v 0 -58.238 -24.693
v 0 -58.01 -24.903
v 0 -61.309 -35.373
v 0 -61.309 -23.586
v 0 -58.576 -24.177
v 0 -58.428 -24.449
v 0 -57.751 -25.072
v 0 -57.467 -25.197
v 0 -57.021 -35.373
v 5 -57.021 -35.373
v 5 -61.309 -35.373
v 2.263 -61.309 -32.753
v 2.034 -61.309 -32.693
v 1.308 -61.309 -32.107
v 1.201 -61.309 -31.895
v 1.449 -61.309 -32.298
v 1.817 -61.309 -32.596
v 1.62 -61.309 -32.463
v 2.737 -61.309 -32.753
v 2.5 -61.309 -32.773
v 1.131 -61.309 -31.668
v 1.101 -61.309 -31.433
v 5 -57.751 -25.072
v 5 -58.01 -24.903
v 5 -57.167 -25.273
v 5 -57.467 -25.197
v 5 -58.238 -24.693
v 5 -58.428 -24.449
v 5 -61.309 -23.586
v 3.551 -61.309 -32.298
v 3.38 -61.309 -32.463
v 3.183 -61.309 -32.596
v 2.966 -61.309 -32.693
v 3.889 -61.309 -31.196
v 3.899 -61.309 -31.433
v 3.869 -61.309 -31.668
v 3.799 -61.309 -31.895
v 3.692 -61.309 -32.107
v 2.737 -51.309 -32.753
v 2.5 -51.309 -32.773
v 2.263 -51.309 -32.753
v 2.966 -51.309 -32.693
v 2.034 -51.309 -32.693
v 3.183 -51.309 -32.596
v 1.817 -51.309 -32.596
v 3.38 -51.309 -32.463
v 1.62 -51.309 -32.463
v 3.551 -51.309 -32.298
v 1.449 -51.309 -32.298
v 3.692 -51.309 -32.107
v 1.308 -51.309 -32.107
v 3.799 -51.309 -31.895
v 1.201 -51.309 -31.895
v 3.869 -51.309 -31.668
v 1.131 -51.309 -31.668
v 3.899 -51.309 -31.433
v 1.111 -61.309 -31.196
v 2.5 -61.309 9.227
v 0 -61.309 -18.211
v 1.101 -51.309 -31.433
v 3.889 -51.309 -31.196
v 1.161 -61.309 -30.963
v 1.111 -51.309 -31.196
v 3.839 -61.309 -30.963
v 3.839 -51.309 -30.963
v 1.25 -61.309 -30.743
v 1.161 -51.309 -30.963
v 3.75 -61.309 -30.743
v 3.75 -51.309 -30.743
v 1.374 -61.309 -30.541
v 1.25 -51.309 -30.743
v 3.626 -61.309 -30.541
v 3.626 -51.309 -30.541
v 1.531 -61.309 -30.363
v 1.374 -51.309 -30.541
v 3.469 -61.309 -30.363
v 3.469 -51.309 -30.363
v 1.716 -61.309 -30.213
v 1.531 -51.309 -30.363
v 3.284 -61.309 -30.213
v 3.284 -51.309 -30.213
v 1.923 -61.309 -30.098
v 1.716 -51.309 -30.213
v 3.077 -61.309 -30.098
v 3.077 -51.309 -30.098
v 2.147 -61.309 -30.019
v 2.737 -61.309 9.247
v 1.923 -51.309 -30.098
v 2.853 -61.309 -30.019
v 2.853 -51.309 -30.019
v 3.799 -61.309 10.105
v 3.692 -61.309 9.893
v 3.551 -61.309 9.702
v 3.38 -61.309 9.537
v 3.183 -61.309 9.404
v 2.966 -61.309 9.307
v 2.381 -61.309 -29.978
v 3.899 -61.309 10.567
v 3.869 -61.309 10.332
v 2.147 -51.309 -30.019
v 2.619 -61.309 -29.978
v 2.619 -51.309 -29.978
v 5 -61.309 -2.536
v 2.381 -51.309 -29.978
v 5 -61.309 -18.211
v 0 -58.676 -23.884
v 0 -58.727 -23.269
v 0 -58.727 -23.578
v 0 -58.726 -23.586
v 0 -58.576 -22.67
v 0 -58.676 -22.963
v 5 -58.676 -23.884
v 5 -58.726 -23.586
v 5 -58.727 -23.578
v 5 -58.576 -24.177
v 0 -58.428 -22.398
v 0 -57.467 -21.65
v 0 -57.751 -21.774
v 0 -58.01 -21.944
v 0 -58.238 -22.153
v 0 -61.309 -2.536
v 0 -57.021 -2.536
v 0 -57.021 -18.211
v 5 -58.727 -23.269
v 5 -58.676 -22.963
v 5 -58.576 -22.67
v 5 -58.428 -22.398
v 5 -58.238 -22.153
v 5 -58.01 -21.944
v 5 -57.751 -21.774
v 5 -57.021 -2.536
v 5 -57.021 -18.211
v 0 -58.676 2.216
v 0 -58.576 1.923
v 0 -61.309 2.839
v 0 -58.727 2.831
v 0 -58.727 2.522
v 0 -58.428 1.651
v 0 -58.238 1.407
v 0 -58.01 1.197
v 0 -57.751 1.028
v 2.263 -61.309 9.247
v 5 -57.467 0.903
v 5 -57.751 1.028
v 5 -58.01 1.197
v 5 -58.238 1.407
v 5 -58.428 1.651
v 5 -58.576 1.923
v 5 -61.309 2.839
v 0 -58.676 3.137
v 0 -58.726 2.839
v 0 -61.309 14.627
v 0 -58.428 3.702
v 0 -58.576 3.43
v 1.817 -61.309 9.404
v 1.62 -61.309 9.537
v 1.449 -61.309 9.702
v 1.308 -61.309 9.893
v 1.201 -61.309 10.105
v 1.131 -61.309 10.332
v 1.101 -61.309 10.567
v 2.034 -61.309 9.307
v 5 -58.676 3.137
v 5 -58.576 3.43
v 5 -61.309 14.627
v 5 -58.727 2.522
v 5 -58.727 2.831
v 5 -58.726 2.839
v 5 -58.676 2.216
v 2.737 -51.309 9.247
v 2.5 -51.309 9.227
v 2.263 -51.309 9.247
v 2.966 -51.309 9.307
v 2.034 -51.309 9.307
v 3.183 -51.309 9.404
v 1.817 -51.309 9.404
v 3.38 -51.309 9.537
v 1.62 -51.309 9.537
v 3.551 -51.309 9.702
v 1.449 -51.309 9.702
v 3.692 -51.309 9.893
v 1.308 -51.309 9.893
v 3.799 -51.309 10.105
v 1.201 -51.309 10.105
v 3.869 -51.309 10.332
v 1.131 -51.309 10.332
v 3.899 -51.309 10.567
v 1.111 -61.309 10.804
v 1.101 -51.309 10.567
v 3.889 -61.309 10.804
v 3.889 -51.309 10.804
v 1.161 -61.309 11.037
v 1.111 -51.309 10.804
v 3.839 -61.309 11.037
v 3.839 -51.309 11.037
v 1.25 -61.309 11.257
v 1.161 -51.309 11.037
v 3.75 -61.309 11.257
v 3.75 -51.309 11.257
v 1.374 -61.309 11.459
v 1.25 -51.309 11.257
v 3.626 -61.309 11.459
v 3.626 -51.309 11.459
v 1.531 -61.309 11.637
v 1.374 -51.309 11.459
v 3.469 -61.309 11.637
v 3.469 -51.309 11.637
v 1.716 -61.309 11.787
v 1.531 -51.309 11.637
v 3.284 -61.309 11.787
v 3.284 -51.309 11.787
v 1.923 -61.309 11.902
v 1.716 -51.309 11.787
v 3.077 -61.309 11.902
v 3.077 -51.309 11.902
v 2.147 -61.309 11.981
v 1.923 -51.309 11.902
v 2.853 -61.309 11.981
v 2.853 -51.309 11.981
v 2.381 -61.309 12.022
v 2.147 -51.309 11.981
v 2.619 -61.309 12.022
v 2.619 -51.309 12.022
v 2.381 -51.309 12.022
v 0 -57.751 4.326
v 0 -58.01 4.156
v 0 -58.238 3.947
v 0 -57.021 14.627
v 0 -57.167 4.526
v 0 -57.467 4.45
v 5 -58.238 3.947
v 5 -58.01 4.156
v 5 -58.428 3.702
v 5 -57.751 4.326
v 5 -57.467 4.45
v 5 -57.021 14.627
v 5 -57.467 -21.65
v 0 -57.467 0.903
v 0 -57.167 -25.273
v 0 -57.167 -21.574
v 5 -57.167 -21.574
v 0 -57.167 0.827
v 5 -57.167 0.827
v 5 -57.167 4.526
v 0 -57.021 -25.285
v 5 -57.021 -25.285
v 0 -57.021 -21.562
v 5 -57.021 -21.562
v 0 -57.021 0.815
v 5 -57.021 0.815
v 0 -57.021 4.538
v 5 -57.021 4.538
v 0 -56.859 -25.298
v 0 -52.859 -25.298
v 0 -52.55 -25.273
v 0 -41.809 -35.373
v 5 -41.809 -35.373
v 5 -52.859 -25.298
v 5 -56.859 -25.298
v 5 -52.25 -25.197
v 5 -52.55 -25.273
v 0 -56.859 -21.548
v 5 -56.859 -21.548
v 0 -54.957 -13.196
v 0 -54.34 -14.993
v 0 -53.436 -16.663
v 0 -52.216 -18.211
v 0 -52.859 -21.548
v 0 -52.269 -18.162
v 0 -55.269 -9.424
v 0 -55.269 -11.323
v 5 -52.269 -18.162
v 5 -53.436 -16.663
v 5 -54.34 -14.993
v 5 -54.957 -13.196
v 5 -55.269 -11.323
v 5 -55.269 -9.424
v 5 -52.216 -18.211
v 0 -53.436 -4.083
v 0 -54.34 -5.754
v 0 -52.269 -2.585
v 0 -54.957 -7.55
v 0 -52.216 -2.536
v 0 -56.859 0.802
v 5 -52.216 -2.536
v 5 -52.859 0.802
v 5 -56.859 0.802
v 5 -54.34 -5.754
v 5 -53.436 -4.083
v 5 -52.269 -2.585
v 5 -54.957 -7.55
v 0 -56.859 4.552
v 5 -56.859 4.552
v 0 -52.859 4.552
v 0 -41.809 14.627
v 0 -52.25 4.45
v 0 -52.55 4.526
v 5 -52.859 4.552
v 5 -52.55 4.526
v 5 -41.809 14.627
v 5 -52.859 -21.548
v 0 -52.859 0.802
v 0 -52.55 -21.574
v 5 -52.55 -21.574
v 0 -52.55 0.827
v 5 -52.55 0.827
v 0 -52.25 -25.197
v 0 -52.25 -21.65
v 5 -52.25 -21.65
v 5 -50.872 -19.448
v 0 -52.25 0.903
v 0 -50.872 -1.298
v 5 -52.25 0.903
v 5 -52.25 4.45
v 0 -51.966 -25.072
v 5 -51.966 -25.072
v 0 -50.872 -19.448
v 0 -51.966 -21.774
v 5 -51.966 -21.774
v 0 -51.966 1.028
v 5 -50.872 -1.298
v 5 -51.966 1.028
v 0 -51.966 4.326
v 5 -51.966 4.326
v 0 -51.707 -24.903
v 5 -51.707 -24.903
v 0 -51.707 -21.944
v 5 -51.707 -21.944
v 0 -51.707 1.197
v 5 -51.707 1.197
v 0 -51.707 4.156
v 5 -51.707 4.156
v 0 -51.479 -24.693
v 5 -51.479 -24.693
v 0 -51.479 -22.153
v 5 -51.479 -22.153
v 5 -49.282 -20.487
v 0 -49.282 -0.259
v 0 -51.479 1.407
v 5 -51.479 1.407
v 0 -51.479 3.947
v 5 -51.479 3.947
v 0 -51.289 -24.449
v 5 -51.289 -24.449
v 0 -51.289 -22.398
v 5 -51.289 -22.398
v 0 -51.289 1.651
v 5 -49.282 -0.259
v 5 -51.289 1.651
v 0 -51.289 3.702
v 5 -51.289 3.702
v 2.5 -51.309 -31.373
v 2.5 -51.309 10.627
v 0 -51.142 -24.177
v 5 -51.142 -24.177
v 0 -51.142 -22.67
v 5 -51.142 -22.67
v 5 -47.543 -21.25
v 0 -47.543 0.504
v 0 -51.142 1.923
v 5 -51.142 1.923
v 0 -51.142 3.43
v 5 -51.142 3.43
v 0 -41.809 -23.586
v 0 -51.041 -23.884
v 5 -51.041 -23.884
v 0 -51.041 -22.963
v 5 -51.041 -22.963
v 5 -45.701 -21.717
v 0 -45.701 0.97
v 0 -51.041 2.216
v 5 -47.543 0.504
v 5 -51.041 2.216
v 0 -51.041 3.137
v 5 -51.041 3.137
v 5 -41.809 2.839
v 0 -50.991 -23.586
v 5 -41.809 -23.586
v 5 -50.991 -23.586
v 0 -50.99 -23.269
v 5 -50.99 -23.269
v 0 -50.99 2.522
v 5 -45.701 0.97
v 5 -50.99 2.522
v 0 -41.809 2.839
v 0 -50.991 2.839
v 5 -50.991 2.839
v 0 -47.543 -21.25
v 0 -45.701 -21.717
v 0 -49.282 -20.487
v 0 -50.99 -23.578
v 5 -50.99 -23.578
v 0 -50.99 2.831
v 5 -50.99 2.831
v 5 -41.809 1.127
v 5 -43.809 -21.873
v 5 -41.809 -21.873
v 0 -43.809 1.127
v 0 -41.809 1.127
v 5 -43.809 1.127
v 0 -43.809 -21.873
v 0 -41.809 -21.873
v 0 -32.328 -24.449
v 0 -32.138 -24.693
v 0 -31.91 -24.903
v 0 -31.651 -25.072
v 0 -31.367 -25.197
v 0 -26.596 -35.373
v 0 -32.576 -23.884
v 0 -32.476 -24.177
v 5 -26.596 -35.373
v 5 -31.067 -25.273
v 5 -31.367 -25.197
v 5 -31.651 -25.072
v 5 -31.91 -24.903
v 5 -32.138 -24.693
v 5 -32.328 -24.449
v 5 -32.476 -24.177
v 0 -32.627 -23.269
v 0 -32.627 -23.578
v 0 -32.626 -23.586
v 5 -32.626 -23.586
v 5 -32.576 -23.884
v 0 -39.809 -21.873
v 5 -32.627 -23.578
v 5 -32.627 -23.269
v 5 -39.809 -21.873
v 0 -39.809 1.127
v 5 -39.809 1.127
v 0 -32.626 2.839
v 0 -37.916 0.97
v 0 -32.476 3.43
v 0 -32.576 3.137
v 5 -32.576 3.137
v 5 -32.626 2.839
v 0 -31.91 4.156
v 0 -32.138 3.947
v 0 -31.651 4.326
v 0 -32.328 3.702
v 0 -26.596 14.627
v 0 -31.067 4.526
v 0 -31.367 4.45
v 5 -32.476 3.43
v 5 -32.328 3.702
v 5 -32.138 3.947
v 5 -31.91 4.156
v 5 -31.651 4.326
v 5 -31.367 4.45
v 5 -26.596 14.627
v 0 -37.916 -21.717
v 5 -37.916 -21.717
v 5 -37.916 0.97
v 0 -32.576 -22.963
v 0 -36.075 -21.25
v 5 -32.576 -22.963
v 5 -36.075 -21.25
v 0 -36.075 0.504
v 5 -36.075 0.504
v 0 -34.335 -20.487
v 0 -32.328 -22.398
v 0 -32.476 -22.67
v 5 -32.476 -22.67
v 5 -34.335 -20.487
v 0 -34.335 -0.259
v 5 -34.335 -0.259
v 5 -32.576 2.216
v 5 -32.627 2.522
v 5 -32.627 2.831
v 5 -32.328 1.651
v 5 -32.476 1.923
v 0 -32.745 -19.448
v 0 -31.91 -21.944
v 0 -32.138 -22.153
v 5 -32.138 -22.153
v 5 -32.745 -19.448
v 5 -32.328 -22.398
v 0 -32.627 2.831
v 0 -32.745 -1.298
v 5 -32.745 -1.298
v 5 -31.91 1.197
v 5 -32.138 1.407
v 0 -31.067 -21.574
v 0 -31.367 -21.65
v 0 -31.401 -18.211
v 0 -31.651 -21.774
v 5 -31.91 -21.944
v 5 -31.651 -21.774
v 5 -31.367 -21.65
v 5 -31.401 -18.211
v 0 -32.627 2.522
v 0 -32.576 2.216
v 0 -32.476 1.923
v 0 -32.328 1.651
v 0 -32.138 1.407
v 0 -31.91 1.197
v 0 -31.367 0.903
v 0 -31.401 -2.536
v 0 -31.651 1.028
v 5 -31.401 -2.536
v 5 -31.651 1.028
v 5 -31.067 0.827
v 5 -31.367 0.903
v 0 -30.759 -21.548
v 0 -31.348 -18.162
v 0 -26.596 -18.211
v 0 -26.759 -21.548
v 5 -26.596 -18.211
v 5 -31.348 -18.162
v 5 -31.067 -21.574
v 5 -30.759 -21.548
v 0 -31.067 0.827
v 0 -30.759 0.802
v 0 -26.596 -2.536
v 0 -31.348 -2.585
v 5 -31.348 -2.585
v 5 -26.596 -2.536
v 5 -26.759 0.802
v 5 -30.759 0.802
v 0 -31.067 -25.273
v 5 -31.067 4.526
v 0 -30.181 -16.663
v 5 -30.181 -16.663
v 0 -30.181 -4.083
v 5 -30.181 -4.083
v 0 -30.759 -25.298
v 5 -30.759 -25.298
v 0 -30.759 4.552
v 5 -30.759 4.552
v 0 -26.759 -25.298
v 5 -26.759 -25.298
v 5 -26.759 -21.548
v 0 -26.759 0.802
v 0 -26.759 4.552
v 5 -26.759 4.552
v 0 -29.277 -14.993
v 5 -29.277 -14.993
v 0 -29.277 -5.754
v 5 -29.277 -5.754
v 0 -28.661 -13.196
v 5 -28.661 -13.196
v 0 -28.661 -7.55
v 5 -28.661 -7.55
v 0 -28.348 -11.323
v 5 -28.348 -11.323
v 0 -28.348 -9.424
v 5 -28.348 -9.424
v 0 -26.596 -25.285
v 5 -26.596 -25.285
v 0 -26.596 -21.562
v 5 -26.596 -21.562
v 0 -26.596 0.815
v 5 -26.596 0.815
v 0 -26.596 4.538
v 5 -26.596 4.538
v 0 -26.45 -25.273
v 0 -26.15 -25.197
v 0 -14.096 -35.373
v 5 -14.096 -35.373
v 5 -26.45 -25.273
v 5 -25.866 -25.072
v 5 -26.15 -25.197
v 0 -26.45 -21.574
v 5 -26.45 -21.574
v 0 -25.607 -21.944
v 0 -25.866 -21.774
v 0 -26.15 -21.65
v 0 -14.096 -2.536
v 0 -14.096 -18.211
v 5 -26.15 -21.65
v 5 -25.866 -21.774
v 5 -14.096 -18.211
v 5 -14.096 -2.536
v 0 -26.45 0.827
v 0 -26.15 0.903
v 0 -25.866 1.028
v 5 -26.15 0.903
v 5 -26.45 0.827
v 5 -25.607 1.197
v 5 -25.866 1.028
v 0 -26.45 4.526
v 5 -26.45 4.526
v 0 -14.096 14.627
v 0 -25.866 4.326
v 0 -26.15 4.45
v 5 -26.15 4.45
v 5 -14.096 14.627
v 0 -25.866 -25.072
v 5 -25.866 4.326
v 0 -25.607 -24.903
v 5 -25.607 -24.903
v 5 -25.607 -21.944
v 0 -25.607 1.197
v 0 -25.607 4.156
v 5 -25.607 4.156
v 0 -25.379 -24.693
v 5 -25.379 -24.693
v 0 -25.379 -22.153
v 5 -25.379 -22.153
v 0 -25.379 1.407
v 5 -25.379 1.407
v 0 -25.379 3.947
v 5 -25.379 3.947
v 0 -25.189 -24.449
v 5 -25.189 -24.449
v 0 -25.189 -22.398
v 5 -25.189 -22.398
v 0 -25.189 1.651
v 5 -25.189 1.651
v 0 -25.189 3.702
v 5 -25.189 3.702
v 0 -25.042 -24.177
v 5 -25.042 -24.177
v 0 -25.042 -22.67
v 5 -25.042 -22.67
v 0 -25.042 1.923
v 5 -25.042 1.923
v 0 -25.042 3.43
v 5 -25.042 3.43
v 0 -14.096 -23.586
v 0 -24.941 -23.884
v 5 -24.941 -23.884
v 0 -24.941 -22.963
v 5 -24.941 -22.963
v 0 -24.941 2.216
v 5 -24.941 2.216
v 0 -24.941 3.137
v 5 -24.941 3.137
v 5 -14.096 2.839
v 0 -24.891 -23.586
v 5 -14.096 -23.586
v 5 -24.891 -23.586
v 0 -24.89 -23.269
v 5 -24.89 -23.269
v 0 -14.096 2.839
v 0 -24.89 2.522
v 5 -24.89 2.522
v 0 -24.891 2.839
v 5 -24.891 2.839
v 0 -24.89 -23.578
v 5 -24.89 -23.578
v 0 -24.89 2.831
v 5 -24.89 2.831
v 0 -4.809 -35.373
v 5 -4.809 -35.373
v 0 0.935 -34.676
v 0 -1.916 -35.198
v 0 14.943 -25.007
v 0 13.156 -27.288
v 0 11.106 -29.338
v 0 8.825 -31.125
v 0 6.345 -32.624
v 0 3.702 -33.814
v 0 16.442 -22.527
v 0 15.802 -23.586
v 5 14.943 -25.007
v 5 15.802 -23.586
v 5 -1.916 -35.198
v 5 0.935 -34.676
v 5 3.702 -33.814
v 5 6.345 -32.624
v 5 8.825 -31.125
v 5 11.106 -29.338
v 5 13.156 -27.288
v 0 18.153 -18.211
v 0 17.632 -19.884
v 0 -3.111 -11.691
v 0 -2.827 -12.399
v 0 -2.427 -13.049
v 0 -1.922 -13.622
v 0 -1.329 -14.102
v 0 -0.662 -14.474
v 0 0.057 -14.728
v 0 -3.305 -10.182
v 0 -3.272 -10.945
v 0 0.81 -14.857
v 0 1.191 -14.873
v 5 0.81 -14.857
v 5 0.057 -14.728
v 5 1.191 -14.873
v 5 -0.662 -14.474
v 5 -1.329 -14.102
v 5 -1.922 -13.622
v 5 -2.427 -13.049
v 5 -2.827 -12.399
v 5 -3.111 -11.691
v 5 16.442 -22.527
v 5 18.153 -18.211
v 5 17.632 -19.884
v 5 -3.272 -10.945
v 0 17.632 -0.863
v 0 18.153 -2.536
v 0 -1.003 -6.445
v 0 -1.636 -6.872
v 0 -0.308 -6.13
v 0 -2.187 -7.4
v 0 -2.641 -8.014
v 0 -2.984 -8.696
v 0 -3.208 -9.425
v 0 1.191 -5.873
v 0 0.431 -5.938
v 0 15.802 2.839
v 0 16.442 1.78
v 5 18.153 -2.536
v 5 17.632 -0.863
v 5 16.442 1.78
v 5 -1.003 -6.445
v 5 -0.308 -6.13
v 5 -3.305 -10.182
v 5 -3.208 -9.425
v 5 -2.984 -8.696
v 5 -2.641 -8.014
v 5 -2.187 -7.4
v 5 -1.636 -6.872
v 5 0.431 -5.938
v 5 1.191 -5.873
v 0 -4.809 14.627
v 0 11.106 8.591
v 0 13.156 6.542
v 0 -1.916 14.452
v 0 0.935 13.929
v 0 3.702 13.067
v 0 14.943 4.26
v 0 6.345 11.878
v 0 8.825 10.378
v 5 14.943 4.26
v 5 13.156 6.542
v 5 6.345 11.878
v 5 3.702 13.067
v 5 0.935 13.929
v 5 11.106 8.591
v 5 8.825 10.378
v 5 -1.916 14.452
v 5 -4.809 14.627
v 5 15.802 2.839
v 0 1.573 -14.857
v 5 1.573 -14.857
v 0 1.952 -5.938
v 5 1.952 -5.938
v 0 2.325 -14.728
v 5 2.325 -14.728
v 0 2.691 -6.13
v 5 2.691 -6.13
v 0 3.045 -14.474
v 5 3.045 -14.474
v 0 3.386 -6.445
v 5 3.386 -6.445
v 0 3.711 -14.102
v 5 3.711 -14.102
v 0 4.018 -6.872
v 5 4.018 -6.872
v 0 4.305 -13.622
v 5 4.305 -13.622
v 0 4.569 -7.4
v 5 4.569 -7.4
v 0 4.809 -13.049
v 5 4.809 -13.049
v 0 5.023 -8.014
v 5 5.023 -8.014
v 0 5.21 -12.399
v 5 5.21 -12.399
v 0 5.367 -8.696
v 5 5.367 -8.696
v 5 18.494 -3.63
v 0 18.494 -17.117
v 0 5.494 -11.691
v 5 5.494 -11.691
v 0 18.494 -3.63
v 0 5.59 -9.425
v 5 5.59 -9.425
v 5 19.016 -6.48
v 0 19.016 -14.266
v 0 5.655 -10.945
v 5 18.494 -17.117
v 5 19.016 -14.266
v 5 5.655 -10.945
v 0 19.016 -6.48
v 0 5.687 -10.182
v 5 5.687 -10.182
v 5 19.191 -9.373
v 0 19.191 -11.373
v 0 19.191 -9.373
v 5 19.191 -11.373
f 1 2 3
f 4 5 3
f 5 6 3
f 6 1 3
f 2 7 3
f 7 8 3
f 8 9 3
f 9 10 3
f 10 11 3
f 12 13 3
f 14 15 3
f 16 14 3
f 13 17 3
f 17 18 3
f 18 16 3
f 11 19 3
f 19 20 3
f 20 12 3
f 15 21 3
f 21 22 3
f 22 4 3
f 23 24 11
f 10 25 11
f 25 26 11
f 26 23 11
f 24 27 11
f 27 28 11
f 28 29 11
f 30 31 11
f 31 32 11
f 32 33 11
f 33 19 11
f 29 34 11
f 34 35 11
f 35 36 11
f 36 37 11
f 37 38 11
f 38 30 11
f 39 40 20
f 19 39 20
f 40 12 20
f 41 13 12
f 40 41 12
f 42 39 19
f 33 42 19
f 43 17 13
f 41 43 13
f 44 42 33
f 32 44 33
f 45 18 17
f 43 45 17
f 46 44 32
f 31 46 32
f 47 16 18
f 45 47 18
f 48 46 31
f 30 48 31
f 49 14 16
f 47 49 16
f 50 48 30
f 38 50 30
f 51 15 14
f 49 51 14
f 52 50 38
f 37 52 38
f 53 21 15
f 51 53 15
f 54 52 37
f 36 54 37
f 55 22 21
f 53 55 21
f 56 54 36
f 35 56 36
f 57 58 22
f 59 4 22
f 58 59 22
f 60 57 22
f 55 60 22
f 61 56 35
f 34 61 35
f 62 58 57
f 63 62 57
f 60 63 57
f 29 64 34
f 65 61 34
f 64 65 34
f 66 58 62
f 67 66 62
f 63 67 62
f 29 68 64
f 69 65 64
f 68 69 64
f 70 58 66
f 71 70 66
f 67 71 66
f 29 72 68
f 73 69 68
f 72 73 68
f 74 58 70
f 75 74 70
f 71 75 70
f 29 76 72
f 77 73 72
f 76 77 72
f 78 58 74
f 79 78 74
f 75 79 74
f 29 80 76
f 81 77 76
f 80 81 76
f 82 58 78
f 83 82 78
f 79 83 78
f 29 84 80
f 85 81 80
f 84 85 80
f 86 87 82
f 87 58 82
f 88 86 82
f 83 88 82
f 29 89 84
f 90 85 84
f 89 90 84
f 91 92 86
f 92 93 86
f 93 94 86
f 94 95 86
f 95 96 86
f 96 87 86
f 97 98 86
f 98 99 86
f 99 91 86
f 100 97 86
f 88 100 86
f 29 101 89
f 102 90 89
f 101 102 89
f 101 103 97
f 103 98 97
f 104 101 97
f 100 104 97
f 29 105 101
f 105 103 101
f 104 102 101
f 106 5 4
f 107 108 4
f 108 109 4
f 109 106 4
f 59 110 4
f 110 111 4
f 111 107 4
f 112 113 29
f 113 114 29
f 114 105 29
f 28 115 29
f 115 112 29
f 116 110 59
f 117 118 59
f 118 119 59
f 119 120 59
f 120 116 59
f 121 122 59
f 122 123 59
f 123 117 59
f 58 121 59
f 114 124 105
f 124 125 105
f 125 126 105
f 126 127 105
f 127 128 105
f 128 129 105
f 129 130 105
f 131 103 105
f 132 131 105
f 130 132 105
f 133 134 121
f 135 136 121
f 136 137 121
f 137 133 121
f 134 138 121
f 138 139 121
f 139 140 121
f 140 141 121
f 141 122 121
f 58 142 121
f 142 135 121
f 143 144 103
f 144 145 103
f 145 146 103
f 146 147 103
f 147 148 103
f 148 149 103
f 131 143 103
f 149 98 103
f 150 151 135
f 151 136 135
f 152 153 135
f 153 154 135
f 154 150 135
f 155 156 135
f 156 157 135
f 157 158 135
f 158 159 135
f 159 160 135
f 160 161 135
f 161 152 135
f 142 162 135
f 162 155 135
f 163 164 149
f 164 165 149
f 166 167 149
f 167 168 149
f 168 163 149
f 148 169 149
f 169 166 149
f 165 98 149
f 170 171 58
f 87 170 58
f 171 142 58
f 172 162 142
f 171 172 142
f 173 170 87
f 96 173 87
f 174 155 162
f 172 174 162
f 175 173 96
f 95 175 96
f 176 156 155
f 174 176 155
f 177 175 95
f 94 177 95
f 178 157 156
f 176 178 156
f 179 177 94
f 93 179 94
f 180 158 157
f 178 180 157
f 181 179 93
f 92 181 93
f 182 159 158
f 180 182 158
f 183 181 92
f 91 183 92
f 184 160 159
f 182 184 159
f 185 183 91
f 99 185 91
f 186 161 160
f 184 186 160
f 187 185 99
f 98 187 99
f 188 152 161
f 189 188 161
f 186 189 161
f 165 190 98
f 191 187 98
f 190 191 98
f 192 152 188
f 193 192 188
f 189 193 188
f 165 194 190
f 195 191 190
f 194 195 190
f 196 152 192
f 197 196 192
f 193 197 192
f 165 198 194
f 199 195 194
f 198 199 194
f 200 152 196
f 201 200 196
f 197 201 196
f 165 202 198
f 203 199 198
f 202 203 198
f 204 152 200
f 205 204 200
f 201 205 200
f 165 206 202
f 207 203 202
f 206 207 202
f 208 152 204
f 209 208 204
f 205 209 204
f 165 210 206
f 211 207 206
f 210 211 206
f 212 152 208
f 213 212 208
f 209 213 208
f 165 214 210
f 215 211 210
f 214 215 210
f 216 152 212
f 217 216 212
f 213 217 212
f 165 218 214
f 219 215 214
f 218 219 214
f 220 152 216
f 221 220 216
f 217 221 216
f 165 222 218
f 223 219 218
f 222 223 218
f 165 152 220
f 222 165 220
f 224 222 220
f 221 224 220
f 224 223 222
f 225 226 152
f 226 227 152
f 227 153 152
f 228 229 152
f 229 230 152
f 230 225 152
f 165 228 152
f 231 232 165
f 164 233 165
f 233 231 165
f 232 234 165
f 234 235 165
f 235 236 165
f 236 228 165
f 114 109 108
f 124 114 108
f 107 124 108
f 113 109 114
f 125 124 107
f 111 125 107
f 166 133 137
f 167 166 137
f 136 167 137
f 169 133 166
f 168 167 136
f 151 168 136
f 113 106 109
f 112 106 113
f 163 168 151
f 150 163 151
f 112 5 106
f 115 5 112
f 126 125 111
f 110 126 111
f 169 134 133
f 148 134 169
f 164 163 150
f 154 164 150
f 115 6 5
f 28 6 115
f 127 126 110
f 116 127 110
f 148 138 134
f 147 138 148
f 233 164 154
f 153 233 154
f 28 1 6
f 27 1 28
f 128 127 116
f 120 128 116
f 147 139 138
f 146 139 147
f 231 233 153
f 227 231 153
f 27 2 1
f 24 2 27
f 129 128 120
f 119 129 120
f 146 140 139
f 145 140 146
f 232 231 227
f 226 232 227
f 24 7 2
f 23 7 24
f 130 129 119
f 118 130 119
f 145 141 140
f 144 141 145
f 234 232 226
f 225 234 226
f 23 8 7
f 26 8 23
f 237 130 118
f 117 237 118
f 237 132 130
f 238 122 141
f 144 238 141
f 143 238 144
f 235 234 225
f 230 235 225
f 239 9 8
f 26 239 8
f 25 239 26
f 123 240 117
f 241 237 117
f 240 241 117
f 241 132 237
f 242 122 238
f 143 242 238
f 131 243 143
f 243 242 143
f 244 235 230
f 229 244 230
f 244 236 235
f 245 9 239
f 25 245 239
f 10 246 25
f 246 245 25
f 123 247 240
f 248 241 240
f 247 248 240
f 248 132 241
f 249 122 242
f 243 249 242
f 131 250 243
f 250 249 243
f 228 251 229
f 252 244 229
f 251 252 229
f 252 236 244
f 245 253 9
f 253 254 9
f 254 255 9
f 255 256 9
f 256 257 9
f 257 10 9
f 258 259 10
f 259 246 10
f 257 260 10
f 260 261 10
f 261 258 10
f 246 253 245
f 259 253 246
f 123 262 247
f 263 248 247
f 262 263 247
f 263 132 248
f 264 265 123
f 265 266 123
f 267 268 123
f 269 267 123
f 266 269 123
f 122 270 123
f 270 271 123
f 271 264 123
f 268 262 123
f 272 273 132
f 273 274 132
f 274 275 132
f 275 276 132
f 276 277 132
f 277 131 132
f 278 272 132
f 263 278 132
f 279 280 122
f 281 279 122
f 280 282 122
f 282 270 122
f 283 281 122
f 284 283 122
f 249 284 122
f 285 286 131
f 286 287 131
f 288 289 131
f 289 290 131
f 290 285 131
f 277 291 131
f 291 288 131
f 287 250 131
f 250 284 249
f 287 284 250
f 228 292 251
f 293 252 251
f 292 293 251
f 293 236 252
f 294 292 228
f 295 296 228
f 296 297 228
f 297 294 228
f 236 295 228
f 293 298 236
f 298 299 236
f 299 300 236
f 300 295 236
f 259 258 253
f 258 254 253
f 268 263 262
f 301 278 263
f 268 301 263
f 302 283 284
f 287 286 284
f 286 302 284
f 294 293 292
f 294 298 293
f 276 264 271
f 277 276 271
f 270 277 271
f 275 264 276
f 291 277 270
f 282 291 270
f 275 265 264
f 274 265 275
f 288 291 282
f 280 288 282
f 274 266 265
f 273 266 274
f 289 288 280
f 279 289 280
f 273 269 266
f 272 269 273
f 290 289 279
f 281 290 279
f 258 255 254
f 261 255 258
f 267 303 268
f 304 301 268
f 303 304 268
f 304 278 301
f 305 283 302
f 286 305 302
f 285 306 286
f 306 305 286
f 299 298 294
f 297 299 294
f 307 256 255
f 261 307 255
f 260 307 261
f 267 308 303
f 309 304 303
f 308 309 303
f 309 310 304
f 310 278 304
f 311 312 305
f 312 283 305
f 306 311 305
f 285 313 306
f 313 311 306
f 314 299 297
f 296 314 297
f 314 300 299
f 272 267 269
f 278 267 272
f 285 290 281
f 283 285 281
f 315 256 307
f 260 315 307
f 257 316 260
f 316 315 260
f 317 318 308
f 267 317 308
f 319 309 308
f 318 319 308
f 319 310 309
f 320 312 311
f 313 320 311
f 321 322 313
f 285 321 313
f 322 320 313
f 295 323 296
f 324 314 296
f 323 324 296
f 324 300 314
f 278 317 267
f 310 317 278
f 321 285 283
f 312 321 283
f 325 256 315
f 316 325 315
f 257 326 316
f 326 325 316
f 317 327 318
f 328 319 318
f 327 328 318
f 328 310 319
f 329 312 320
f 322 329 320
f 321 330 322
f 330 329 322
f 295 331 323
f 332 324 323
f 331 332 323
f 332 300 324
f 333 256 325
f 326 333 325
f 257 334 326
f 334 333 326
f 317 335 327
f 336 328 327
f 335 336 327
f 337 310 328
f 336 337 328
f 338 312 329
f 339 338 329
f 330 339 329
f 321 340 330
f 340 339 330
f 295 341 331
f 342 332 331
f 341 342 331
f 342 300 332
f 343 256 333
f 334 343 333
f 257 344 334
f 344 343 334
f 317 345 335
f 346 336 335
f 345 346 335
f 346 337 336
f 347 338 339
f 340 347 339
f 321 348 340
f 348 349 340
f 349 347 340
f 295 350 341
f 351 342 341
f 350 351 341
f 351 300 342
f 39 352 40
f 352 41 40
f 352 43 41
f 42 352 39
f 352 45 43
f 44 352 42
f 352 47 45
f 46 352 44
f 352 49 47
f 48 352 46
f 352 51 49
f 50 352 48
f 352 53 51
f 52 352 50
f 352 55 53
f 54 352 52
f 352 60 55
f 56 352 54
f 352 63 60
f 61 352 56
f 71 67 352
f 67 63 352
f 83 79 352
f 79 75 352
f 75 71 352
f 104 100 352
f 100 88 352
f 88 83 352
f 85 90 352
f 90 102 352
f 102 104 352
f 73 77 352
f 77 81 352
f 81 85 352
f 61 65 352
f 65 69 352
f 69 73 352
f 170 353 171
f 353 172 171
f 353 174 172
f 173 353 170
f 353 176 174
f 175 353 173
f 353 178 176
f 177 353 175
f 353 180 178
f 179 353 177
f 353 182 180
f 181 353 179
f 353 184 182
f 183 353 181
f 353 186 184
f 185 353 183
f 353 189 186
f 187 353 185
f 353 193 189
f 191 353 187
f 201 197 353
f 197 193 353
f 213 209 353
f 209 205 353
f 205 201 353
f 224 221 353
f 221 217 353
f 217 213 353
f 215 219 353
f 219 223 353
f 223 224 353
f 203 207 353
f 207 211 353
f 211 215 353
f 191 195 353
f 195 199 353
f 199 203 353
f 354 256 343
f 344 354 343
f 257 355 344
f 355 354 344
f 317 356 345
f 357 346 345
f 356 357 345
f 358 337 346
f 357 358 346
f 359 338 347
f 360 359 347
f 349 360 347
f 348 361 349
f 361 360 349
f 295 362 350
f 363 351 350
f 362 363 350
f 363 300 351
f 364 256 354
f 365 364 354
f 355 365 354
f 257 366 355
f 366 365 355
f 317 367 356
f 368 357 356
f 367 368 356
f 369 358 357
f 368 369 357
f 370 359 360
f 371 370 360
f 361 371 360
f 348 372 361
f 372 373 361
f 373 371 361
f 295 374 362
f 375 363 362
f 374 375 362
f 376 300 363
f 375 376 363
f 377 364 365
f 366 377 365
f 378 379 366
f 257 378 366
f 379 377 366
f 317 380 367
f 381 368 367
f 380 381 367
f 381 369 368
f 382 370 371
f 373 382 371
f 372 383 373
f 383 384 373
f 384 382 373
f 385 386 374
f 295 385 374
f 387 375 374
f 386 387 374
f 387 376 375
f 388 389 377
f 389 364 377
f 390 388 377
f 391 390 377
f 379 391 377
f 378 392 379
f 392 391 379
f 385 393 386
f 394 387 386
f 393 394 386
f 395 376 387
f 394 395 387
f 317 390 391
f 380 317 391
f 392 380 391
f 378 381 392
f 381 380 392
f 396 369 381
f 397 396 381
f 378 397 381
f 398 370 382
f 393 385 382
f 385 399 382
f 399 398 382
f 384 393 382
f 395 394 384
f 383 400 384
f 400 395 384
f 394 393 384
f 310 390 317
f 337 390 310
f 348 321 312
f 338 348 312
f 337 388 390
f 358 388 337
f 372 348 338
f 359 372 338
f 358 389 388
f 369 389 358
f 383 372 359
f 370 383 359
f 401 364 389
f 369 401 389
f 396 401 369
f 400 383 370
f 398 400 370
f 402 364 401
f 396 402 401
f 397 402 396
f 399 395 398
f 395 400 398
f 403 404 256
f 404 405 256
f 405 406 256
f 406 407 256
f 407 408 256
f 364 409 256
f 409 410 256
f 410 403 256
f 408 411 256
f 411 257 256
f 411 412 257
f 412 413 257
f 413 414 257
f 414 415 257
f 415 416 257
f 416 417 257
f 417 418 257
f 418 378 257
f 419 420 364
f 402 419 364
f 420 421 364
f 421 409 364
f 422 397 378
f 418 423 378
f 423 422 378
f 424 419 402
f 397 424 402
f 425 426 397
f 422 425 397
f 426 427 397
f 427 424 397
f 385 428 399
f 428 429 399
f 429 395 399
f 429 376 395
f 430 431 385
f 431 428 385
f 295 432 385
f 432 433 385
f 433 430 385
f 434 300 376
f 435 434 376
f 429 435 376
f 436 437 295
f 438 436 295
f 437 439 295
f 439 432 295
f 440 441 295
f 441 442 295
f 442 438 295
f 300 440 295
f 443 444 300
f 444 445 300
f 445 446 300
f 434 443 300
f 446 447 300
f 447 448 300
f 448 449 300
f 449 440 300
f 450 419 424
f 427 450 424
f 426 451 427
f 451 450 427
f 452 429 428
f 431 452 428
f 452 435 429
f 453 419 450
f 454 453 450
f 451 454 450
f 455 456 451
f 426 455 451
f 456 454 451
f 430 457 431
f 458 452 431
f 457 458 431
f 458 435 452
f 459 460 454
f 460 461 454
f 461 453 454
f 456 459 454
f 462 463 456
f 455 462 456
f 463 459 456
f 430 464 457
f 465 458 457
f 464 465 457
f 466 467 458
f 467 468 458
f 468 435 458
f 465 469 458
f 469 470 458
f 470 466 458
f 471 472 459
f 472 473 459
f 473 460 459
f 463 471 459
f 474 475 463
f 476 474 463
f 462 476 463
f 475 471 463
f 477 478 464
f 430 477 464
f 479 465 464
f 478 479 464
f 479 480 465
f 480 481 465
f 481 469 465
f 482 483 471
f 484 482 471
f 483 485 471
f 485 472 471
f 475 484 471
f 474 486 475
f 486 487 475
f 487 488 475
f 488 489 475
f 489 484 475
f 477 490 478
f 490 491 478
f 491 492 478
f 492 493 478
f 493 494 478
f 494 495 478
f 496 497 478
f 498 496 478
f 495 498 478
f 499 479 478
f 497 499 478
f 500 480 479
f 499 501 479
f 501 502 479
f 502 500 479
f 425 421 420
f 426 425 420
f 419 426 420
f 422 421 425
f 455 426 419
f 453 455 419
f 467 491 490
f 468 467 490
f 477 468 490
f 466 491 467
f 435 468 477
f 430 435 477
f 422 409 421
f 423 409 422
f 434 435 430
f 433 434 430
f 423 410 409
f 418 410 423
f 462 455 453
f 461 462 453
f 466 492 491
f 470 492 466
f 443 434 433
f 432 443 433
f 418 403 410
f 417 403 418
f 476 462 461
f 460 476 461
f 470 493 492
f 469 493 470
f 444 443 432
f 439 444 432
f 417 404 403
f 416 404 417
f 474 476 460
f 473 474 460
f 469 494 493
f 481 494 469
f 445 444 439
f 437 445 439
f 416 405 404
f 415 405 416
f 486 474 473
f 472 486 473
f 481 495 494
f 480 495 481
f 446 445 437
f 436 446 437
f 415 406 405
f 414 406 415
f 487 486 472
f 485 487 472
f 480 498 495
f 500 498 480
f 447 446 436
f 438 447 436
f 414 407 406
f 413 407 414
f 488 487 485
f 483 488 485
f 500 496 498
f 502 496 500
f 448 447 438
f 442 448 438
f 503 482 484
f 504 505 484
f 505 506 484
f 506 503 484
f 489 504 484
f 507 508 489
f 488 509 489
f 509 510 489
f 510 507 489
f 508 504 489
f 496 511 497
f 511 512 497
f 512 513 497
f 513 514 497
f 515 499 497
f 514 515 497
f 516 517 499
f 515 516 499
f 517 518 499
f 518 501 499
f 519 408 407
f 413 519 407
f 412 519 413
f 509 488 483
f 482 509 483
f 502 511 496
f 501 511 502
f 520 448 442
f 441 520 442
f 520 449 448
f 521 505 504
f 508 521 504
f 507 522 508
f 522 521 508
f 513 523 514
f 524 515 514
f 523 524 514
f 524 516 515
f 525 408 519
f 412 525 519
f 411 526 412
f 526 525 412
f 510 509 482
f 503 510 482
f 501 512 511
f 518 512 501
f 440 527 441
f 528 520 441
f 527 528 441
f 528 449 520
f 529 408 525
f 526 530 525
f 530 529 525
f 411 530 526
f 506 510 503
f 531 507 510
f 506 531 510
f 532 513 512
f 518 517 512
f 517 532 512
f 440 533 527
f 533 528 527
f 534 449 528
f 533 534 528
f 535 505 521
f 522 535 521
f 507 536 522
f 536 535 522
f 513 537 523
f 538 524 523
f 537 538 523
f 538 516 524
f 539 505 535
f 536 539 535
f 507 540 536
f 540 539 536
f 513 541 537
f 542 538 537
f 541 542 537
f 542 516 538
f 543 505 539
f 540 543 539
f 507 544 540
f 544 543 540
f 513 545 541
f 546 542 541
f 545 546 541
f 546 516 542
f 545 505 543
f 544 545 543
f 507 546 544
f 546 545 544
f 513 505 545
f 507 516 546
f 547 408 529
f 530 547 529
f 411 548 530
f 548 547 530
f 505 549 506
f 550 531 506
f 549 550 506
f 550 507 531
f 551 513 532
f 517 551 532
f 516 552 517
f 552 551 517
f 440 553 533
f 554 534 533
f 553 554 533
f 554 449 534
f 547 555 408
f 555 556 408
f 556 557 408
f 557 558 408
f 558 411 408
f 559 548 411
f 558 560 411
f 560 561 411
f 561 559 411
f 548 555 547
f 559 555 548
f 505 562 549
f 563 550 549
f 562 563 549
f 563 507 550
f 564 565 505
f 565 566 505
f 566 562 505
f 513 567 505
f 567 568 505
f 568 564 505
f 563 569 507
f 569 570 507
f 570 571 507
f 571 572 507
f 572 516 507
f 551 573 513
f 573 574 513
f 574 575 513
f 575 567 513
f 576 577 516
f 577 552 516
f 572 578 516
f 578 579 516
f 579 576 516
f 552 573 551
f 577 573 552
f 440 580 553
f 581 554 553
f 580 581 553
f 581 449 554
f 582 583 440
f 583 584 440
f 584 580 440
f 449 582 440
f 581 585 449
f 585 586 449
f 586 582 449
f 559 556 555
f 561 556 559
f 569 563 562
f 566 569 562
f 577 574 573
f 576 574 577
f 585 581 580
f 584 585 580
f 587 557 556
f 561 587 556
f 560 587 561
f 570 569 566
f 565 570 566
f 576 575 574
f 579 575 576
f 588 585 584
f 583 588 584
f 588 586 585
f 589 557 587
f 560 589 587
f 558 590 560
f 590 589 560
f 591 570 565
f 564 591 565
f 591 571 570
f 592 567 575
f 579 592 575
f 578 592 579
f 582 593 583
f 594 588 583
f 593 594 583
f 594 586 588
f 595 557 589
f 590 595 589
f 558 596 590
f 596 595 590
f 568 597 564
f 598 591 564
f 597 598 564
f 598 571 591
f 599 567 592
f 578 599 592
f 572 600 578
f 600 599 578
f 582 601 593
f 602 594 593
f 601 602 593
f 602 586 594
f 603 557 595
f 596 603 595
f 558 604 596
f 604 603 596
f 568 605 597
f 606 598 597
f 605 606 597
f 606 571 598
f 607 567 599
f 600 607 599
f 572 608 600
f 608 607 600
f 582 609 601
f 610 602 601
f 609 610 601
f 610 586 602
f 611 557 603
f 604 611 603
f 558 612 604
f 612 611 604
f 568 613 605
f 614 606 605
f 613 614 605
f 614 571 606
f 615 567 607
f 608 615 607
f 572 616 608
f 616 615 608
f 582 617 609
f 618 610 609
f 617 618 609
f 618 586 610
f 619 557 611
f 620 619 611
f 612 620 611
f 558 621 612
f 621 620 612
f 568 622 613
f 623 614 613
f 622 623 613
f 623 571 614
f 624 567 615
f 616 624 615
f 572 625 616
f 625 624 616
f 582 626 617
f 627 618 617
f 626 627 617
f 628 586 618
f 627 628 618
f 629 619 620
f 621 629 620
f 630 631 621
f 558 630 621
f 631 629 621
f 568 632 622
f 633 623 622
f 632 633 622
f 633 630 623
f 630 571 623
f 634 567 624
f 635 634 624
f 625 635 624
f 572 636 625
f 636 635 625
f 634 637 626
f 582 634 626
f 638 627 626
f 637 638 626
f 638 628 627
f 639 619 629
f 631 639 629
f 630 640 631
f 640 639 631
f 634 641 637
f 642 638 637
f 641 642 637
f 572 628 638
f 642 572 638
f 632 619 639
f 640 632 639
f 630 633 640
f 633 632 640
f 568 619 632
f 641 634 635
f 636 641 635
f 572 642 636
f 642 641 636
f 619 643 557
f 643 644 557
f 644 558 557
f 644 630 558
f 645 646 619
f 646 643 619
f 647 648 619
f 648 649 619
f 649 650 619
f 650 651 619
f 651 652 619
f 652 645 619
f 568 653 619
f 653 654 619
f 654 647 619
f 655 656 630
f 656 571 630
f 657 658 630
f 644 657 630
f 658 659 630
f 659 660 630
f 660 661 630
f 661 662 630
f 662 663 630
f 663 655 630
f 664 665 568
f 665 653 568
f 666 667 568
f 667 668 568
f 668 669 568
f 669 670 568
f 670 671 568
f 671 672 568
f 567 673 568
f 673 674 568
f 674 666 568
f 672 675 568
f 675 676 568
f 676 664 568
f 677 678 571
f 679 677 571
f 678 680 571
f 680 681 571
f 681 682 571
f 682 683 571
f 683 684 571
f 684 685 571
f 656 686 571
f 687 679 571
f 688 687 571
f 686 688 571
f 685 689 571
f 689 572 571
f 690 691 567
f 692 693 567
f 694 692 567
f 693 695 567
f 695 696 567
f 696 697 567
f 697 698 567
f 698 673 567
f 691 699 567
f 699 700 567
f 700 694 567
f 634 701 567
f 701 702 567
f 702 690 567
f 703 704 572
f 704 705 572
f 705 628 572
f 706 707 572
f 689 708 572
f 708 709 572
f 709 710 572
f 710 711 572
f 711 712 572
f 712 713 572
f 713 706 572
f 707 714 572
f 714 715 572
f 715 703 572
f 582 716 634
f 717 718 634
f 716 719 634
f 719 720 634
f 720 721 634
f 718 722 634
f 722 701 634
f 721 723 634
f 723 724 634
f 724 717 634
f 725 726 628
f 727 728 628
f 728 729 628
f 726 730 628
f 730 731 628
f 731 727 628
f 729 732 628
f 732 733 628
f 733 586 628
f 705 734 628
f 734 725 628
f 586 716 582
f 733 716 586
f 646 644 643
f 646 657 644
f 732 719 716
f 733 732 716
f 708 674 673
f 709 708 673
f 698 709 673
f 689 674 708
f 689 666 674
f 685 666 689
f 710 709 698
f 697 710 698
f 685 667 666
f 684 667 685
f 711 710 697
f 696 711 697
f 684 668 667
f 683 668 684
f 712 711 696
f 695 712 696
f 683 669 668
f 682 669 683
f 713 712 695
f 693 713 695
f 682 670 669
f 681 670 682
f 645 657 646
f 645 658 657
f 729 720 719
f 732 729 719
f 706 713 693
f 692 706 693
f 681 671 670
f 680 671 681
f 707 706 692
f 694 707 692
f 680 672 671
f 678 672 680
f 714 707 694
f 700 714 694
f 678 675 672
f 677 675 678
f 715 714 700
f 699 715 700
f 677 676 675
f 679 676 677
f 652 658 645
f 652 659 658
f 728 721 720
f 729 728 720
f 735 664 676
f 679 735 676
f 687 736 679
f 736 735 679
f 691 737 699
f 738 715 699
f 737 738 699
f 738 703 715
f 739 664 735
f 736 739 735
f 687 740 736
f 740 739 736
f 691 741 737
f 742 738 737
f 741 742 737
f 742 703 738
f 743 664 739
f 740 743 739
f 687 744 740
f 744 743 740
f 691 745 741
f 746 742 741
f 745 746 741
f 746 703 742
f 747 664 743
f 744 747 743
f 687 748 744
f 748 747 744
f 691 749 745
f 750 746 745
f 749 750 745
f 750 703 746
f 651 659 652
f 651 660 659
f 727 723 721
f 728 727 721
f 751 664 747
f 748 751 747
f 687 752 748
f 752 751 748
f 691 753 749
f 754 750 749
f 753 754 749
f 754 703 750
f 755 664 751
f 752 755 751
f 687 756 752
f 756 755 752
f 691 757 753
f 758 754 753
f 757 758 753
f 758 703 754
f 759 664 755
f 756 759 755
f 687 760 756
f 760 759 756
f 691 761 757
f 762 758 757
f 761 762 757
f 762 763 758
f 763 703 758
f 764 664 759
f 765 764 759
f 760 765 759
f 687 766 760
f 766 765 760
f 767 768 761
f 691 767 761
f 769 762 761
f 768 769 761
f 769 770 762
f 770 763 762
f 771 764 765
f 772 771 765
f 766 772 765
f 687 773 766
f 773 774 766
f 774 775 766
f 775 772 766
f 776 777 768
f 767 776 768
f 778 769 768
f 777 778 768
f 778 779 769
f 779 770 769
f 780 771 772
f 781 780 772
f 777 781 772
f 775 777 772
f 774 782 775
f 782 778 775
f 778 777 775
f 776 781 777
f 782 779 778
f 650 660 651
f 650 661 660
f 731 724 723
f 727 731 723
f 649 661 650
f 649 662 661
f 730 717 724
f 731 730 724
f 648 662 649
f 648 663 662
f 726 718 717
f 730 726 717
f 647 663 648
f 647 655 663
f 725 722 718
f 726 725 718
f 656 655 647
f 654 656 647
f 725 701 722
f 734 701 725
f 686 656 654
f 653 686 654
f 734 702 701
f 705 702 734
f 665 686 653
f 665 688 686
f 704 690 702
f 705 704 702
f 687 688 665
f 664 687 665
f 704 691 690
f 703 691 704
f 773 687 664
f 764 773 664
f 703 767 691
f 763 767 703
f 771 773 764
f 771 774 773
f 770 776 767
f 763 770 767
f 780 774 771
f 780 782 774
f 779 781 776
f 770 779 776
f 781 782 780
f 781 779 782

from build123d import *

# Parameters (mm, degrees)
SKETCH1_R           = 4.5
BOSS_EXTRUDE1_DEPTH = 5
SKETCH2_R           = 1.4
CUT_EXTRUDE1_DEPTH  = 10


with BuildPart() as part:
    # Sketch1 → Boss-Extrude1 (new body)
    with BuildSketch(Plane(origin=(0, 0, 0), x_dir=(0, 0, -1), z_dir=(1, 0, 0))):
        with BuildLine():
            Line((9.37337158, 19.191374663), (11.37337158, 19.191374663))
            ThreePointArc((11.37337158, 19.191374663), (28.343934329, 12.161937412), (35.37337158, -4.808625337))
            Line((35.37337158, -4.808625337), (35.37337158, -61.308625337))
            Line((35.37337158, -61.308625337), (-14.62662842, -61.308625337))
            Line((-14.62662842, -61.308625337), (-14.62662842, -4.808625337))
            ThreePointArc((-14.62662842, -4.808625337), (-7.597191168, 12.161937412), (9.37337158, 19.191374663))
        make_face()
        with Locations((10.37337158, 1.191374663)):
            Circle(SKETCH1_R, mode=Mode.SUBTRACT)
        with BuildLine():
            Line((-4.55162842, -26.758625337), (-4.55162842, -30.758625337))
            ThreePointArc((-4.55162842, -30.758625337), (-2.67662842, -32.633625337), (-0.80162842, -30.758625337))
            Line((-0.80162842, -30.758625337), (-0.80162842, -26.758625337))
            ThreePointArc((-0.80162842, -26.758625337), (-2.67662842, -24.883625337), (-4.55162842, -26.758625337))
        make_face(mode=Mode.SUBTRACT)
        with BuildLine():
            Line((21.54837158, -26.758625337), (21.54837158, -30.758625337))
            ThreePointArc((21.54837158, -30.758625337), (23.42337158, -32.633625337), (25.29837158, -30.758625337))
            Line((25.29837158, -30.758625337), (25.29837158, -26.758625337))
            ThreePointArc((25.29837158, -26.758625337), (23.42337158, -24.883625337), (21.54837158, -26.758625337))
        make_face(mode=Mode.SUBTRACT)
        with BuildLine():
            Line((25.29837158, -52.858625337), (25.29837158, -56.858625337))
            ThreePointArc((25.29837158, -56.858625337), (23.42337158, -58.733625337), (21.54837158, -56.858625337))
            Line((21.54837158, -56.858625337), (21.54837158, -52.858625337))
            ThreePointArc((21.54837158, -52.858625337), (23.42337158, -50.983625337), (25.29837158, -52.858625337))
        make_face(mode=Mode.SUBTRACT)
        with BuildLine():
            Line((-4.55162842, -52.858625337), (-4.55162842, -56.858625337))
            ThreePointArc((-4.55162842, -56.858625337), (-2.67662842, -58.733625337), (-0.80162842, -56.858625337))
            Line((-0.80162842, -56.858625337), (-0.80162842, -52.858625337))
            ThreePointArc((-0.80162842, -52.858625337), (-2.67662842, -50.983625337), (-4.55162842, -52.858625337))
        make_face(mode=Mode.SUBTRACT)
        with BuildLine():
            Line((-1.12662842, -39.808625337), (-1.12662842, -43.808625337))
            ThreePointArc((-1.12662842, -43.808625337), (10.37337158, -55.308625337), (21.87337158, -43.808625337))
            Line((21.87337158, -43.808625337), (21.87337158, -39.808625337))
            ThreePointArc((21.87337158, -39.808625337), (10.37337158, -28.308625337), (-1.12662842, -39.808625337))
        make_face(mode=Mode.SUBTRACT)
    extrude(amount=BOSS_EXTRUDE1_DEPTH)

    # Sketch2 → Cut-Extrude1 (cut)
    with BuildSketch(Plane(origin=(0, -61.308625337, 0), x_dir=(-1, 0, 0), z_dir=(0, -1, 0))):
        with Locations((-2.5, -10.62662842)):
            Circle(SKETCH2_R)
        with Locations((-2.5, 31.37337158)):
            Circle(SKETCH2_R)
    extrude(amount=-CUT_EXTRUDE1_DEPTH, mode=Mode.SUBTRACT)


solid = part.part
